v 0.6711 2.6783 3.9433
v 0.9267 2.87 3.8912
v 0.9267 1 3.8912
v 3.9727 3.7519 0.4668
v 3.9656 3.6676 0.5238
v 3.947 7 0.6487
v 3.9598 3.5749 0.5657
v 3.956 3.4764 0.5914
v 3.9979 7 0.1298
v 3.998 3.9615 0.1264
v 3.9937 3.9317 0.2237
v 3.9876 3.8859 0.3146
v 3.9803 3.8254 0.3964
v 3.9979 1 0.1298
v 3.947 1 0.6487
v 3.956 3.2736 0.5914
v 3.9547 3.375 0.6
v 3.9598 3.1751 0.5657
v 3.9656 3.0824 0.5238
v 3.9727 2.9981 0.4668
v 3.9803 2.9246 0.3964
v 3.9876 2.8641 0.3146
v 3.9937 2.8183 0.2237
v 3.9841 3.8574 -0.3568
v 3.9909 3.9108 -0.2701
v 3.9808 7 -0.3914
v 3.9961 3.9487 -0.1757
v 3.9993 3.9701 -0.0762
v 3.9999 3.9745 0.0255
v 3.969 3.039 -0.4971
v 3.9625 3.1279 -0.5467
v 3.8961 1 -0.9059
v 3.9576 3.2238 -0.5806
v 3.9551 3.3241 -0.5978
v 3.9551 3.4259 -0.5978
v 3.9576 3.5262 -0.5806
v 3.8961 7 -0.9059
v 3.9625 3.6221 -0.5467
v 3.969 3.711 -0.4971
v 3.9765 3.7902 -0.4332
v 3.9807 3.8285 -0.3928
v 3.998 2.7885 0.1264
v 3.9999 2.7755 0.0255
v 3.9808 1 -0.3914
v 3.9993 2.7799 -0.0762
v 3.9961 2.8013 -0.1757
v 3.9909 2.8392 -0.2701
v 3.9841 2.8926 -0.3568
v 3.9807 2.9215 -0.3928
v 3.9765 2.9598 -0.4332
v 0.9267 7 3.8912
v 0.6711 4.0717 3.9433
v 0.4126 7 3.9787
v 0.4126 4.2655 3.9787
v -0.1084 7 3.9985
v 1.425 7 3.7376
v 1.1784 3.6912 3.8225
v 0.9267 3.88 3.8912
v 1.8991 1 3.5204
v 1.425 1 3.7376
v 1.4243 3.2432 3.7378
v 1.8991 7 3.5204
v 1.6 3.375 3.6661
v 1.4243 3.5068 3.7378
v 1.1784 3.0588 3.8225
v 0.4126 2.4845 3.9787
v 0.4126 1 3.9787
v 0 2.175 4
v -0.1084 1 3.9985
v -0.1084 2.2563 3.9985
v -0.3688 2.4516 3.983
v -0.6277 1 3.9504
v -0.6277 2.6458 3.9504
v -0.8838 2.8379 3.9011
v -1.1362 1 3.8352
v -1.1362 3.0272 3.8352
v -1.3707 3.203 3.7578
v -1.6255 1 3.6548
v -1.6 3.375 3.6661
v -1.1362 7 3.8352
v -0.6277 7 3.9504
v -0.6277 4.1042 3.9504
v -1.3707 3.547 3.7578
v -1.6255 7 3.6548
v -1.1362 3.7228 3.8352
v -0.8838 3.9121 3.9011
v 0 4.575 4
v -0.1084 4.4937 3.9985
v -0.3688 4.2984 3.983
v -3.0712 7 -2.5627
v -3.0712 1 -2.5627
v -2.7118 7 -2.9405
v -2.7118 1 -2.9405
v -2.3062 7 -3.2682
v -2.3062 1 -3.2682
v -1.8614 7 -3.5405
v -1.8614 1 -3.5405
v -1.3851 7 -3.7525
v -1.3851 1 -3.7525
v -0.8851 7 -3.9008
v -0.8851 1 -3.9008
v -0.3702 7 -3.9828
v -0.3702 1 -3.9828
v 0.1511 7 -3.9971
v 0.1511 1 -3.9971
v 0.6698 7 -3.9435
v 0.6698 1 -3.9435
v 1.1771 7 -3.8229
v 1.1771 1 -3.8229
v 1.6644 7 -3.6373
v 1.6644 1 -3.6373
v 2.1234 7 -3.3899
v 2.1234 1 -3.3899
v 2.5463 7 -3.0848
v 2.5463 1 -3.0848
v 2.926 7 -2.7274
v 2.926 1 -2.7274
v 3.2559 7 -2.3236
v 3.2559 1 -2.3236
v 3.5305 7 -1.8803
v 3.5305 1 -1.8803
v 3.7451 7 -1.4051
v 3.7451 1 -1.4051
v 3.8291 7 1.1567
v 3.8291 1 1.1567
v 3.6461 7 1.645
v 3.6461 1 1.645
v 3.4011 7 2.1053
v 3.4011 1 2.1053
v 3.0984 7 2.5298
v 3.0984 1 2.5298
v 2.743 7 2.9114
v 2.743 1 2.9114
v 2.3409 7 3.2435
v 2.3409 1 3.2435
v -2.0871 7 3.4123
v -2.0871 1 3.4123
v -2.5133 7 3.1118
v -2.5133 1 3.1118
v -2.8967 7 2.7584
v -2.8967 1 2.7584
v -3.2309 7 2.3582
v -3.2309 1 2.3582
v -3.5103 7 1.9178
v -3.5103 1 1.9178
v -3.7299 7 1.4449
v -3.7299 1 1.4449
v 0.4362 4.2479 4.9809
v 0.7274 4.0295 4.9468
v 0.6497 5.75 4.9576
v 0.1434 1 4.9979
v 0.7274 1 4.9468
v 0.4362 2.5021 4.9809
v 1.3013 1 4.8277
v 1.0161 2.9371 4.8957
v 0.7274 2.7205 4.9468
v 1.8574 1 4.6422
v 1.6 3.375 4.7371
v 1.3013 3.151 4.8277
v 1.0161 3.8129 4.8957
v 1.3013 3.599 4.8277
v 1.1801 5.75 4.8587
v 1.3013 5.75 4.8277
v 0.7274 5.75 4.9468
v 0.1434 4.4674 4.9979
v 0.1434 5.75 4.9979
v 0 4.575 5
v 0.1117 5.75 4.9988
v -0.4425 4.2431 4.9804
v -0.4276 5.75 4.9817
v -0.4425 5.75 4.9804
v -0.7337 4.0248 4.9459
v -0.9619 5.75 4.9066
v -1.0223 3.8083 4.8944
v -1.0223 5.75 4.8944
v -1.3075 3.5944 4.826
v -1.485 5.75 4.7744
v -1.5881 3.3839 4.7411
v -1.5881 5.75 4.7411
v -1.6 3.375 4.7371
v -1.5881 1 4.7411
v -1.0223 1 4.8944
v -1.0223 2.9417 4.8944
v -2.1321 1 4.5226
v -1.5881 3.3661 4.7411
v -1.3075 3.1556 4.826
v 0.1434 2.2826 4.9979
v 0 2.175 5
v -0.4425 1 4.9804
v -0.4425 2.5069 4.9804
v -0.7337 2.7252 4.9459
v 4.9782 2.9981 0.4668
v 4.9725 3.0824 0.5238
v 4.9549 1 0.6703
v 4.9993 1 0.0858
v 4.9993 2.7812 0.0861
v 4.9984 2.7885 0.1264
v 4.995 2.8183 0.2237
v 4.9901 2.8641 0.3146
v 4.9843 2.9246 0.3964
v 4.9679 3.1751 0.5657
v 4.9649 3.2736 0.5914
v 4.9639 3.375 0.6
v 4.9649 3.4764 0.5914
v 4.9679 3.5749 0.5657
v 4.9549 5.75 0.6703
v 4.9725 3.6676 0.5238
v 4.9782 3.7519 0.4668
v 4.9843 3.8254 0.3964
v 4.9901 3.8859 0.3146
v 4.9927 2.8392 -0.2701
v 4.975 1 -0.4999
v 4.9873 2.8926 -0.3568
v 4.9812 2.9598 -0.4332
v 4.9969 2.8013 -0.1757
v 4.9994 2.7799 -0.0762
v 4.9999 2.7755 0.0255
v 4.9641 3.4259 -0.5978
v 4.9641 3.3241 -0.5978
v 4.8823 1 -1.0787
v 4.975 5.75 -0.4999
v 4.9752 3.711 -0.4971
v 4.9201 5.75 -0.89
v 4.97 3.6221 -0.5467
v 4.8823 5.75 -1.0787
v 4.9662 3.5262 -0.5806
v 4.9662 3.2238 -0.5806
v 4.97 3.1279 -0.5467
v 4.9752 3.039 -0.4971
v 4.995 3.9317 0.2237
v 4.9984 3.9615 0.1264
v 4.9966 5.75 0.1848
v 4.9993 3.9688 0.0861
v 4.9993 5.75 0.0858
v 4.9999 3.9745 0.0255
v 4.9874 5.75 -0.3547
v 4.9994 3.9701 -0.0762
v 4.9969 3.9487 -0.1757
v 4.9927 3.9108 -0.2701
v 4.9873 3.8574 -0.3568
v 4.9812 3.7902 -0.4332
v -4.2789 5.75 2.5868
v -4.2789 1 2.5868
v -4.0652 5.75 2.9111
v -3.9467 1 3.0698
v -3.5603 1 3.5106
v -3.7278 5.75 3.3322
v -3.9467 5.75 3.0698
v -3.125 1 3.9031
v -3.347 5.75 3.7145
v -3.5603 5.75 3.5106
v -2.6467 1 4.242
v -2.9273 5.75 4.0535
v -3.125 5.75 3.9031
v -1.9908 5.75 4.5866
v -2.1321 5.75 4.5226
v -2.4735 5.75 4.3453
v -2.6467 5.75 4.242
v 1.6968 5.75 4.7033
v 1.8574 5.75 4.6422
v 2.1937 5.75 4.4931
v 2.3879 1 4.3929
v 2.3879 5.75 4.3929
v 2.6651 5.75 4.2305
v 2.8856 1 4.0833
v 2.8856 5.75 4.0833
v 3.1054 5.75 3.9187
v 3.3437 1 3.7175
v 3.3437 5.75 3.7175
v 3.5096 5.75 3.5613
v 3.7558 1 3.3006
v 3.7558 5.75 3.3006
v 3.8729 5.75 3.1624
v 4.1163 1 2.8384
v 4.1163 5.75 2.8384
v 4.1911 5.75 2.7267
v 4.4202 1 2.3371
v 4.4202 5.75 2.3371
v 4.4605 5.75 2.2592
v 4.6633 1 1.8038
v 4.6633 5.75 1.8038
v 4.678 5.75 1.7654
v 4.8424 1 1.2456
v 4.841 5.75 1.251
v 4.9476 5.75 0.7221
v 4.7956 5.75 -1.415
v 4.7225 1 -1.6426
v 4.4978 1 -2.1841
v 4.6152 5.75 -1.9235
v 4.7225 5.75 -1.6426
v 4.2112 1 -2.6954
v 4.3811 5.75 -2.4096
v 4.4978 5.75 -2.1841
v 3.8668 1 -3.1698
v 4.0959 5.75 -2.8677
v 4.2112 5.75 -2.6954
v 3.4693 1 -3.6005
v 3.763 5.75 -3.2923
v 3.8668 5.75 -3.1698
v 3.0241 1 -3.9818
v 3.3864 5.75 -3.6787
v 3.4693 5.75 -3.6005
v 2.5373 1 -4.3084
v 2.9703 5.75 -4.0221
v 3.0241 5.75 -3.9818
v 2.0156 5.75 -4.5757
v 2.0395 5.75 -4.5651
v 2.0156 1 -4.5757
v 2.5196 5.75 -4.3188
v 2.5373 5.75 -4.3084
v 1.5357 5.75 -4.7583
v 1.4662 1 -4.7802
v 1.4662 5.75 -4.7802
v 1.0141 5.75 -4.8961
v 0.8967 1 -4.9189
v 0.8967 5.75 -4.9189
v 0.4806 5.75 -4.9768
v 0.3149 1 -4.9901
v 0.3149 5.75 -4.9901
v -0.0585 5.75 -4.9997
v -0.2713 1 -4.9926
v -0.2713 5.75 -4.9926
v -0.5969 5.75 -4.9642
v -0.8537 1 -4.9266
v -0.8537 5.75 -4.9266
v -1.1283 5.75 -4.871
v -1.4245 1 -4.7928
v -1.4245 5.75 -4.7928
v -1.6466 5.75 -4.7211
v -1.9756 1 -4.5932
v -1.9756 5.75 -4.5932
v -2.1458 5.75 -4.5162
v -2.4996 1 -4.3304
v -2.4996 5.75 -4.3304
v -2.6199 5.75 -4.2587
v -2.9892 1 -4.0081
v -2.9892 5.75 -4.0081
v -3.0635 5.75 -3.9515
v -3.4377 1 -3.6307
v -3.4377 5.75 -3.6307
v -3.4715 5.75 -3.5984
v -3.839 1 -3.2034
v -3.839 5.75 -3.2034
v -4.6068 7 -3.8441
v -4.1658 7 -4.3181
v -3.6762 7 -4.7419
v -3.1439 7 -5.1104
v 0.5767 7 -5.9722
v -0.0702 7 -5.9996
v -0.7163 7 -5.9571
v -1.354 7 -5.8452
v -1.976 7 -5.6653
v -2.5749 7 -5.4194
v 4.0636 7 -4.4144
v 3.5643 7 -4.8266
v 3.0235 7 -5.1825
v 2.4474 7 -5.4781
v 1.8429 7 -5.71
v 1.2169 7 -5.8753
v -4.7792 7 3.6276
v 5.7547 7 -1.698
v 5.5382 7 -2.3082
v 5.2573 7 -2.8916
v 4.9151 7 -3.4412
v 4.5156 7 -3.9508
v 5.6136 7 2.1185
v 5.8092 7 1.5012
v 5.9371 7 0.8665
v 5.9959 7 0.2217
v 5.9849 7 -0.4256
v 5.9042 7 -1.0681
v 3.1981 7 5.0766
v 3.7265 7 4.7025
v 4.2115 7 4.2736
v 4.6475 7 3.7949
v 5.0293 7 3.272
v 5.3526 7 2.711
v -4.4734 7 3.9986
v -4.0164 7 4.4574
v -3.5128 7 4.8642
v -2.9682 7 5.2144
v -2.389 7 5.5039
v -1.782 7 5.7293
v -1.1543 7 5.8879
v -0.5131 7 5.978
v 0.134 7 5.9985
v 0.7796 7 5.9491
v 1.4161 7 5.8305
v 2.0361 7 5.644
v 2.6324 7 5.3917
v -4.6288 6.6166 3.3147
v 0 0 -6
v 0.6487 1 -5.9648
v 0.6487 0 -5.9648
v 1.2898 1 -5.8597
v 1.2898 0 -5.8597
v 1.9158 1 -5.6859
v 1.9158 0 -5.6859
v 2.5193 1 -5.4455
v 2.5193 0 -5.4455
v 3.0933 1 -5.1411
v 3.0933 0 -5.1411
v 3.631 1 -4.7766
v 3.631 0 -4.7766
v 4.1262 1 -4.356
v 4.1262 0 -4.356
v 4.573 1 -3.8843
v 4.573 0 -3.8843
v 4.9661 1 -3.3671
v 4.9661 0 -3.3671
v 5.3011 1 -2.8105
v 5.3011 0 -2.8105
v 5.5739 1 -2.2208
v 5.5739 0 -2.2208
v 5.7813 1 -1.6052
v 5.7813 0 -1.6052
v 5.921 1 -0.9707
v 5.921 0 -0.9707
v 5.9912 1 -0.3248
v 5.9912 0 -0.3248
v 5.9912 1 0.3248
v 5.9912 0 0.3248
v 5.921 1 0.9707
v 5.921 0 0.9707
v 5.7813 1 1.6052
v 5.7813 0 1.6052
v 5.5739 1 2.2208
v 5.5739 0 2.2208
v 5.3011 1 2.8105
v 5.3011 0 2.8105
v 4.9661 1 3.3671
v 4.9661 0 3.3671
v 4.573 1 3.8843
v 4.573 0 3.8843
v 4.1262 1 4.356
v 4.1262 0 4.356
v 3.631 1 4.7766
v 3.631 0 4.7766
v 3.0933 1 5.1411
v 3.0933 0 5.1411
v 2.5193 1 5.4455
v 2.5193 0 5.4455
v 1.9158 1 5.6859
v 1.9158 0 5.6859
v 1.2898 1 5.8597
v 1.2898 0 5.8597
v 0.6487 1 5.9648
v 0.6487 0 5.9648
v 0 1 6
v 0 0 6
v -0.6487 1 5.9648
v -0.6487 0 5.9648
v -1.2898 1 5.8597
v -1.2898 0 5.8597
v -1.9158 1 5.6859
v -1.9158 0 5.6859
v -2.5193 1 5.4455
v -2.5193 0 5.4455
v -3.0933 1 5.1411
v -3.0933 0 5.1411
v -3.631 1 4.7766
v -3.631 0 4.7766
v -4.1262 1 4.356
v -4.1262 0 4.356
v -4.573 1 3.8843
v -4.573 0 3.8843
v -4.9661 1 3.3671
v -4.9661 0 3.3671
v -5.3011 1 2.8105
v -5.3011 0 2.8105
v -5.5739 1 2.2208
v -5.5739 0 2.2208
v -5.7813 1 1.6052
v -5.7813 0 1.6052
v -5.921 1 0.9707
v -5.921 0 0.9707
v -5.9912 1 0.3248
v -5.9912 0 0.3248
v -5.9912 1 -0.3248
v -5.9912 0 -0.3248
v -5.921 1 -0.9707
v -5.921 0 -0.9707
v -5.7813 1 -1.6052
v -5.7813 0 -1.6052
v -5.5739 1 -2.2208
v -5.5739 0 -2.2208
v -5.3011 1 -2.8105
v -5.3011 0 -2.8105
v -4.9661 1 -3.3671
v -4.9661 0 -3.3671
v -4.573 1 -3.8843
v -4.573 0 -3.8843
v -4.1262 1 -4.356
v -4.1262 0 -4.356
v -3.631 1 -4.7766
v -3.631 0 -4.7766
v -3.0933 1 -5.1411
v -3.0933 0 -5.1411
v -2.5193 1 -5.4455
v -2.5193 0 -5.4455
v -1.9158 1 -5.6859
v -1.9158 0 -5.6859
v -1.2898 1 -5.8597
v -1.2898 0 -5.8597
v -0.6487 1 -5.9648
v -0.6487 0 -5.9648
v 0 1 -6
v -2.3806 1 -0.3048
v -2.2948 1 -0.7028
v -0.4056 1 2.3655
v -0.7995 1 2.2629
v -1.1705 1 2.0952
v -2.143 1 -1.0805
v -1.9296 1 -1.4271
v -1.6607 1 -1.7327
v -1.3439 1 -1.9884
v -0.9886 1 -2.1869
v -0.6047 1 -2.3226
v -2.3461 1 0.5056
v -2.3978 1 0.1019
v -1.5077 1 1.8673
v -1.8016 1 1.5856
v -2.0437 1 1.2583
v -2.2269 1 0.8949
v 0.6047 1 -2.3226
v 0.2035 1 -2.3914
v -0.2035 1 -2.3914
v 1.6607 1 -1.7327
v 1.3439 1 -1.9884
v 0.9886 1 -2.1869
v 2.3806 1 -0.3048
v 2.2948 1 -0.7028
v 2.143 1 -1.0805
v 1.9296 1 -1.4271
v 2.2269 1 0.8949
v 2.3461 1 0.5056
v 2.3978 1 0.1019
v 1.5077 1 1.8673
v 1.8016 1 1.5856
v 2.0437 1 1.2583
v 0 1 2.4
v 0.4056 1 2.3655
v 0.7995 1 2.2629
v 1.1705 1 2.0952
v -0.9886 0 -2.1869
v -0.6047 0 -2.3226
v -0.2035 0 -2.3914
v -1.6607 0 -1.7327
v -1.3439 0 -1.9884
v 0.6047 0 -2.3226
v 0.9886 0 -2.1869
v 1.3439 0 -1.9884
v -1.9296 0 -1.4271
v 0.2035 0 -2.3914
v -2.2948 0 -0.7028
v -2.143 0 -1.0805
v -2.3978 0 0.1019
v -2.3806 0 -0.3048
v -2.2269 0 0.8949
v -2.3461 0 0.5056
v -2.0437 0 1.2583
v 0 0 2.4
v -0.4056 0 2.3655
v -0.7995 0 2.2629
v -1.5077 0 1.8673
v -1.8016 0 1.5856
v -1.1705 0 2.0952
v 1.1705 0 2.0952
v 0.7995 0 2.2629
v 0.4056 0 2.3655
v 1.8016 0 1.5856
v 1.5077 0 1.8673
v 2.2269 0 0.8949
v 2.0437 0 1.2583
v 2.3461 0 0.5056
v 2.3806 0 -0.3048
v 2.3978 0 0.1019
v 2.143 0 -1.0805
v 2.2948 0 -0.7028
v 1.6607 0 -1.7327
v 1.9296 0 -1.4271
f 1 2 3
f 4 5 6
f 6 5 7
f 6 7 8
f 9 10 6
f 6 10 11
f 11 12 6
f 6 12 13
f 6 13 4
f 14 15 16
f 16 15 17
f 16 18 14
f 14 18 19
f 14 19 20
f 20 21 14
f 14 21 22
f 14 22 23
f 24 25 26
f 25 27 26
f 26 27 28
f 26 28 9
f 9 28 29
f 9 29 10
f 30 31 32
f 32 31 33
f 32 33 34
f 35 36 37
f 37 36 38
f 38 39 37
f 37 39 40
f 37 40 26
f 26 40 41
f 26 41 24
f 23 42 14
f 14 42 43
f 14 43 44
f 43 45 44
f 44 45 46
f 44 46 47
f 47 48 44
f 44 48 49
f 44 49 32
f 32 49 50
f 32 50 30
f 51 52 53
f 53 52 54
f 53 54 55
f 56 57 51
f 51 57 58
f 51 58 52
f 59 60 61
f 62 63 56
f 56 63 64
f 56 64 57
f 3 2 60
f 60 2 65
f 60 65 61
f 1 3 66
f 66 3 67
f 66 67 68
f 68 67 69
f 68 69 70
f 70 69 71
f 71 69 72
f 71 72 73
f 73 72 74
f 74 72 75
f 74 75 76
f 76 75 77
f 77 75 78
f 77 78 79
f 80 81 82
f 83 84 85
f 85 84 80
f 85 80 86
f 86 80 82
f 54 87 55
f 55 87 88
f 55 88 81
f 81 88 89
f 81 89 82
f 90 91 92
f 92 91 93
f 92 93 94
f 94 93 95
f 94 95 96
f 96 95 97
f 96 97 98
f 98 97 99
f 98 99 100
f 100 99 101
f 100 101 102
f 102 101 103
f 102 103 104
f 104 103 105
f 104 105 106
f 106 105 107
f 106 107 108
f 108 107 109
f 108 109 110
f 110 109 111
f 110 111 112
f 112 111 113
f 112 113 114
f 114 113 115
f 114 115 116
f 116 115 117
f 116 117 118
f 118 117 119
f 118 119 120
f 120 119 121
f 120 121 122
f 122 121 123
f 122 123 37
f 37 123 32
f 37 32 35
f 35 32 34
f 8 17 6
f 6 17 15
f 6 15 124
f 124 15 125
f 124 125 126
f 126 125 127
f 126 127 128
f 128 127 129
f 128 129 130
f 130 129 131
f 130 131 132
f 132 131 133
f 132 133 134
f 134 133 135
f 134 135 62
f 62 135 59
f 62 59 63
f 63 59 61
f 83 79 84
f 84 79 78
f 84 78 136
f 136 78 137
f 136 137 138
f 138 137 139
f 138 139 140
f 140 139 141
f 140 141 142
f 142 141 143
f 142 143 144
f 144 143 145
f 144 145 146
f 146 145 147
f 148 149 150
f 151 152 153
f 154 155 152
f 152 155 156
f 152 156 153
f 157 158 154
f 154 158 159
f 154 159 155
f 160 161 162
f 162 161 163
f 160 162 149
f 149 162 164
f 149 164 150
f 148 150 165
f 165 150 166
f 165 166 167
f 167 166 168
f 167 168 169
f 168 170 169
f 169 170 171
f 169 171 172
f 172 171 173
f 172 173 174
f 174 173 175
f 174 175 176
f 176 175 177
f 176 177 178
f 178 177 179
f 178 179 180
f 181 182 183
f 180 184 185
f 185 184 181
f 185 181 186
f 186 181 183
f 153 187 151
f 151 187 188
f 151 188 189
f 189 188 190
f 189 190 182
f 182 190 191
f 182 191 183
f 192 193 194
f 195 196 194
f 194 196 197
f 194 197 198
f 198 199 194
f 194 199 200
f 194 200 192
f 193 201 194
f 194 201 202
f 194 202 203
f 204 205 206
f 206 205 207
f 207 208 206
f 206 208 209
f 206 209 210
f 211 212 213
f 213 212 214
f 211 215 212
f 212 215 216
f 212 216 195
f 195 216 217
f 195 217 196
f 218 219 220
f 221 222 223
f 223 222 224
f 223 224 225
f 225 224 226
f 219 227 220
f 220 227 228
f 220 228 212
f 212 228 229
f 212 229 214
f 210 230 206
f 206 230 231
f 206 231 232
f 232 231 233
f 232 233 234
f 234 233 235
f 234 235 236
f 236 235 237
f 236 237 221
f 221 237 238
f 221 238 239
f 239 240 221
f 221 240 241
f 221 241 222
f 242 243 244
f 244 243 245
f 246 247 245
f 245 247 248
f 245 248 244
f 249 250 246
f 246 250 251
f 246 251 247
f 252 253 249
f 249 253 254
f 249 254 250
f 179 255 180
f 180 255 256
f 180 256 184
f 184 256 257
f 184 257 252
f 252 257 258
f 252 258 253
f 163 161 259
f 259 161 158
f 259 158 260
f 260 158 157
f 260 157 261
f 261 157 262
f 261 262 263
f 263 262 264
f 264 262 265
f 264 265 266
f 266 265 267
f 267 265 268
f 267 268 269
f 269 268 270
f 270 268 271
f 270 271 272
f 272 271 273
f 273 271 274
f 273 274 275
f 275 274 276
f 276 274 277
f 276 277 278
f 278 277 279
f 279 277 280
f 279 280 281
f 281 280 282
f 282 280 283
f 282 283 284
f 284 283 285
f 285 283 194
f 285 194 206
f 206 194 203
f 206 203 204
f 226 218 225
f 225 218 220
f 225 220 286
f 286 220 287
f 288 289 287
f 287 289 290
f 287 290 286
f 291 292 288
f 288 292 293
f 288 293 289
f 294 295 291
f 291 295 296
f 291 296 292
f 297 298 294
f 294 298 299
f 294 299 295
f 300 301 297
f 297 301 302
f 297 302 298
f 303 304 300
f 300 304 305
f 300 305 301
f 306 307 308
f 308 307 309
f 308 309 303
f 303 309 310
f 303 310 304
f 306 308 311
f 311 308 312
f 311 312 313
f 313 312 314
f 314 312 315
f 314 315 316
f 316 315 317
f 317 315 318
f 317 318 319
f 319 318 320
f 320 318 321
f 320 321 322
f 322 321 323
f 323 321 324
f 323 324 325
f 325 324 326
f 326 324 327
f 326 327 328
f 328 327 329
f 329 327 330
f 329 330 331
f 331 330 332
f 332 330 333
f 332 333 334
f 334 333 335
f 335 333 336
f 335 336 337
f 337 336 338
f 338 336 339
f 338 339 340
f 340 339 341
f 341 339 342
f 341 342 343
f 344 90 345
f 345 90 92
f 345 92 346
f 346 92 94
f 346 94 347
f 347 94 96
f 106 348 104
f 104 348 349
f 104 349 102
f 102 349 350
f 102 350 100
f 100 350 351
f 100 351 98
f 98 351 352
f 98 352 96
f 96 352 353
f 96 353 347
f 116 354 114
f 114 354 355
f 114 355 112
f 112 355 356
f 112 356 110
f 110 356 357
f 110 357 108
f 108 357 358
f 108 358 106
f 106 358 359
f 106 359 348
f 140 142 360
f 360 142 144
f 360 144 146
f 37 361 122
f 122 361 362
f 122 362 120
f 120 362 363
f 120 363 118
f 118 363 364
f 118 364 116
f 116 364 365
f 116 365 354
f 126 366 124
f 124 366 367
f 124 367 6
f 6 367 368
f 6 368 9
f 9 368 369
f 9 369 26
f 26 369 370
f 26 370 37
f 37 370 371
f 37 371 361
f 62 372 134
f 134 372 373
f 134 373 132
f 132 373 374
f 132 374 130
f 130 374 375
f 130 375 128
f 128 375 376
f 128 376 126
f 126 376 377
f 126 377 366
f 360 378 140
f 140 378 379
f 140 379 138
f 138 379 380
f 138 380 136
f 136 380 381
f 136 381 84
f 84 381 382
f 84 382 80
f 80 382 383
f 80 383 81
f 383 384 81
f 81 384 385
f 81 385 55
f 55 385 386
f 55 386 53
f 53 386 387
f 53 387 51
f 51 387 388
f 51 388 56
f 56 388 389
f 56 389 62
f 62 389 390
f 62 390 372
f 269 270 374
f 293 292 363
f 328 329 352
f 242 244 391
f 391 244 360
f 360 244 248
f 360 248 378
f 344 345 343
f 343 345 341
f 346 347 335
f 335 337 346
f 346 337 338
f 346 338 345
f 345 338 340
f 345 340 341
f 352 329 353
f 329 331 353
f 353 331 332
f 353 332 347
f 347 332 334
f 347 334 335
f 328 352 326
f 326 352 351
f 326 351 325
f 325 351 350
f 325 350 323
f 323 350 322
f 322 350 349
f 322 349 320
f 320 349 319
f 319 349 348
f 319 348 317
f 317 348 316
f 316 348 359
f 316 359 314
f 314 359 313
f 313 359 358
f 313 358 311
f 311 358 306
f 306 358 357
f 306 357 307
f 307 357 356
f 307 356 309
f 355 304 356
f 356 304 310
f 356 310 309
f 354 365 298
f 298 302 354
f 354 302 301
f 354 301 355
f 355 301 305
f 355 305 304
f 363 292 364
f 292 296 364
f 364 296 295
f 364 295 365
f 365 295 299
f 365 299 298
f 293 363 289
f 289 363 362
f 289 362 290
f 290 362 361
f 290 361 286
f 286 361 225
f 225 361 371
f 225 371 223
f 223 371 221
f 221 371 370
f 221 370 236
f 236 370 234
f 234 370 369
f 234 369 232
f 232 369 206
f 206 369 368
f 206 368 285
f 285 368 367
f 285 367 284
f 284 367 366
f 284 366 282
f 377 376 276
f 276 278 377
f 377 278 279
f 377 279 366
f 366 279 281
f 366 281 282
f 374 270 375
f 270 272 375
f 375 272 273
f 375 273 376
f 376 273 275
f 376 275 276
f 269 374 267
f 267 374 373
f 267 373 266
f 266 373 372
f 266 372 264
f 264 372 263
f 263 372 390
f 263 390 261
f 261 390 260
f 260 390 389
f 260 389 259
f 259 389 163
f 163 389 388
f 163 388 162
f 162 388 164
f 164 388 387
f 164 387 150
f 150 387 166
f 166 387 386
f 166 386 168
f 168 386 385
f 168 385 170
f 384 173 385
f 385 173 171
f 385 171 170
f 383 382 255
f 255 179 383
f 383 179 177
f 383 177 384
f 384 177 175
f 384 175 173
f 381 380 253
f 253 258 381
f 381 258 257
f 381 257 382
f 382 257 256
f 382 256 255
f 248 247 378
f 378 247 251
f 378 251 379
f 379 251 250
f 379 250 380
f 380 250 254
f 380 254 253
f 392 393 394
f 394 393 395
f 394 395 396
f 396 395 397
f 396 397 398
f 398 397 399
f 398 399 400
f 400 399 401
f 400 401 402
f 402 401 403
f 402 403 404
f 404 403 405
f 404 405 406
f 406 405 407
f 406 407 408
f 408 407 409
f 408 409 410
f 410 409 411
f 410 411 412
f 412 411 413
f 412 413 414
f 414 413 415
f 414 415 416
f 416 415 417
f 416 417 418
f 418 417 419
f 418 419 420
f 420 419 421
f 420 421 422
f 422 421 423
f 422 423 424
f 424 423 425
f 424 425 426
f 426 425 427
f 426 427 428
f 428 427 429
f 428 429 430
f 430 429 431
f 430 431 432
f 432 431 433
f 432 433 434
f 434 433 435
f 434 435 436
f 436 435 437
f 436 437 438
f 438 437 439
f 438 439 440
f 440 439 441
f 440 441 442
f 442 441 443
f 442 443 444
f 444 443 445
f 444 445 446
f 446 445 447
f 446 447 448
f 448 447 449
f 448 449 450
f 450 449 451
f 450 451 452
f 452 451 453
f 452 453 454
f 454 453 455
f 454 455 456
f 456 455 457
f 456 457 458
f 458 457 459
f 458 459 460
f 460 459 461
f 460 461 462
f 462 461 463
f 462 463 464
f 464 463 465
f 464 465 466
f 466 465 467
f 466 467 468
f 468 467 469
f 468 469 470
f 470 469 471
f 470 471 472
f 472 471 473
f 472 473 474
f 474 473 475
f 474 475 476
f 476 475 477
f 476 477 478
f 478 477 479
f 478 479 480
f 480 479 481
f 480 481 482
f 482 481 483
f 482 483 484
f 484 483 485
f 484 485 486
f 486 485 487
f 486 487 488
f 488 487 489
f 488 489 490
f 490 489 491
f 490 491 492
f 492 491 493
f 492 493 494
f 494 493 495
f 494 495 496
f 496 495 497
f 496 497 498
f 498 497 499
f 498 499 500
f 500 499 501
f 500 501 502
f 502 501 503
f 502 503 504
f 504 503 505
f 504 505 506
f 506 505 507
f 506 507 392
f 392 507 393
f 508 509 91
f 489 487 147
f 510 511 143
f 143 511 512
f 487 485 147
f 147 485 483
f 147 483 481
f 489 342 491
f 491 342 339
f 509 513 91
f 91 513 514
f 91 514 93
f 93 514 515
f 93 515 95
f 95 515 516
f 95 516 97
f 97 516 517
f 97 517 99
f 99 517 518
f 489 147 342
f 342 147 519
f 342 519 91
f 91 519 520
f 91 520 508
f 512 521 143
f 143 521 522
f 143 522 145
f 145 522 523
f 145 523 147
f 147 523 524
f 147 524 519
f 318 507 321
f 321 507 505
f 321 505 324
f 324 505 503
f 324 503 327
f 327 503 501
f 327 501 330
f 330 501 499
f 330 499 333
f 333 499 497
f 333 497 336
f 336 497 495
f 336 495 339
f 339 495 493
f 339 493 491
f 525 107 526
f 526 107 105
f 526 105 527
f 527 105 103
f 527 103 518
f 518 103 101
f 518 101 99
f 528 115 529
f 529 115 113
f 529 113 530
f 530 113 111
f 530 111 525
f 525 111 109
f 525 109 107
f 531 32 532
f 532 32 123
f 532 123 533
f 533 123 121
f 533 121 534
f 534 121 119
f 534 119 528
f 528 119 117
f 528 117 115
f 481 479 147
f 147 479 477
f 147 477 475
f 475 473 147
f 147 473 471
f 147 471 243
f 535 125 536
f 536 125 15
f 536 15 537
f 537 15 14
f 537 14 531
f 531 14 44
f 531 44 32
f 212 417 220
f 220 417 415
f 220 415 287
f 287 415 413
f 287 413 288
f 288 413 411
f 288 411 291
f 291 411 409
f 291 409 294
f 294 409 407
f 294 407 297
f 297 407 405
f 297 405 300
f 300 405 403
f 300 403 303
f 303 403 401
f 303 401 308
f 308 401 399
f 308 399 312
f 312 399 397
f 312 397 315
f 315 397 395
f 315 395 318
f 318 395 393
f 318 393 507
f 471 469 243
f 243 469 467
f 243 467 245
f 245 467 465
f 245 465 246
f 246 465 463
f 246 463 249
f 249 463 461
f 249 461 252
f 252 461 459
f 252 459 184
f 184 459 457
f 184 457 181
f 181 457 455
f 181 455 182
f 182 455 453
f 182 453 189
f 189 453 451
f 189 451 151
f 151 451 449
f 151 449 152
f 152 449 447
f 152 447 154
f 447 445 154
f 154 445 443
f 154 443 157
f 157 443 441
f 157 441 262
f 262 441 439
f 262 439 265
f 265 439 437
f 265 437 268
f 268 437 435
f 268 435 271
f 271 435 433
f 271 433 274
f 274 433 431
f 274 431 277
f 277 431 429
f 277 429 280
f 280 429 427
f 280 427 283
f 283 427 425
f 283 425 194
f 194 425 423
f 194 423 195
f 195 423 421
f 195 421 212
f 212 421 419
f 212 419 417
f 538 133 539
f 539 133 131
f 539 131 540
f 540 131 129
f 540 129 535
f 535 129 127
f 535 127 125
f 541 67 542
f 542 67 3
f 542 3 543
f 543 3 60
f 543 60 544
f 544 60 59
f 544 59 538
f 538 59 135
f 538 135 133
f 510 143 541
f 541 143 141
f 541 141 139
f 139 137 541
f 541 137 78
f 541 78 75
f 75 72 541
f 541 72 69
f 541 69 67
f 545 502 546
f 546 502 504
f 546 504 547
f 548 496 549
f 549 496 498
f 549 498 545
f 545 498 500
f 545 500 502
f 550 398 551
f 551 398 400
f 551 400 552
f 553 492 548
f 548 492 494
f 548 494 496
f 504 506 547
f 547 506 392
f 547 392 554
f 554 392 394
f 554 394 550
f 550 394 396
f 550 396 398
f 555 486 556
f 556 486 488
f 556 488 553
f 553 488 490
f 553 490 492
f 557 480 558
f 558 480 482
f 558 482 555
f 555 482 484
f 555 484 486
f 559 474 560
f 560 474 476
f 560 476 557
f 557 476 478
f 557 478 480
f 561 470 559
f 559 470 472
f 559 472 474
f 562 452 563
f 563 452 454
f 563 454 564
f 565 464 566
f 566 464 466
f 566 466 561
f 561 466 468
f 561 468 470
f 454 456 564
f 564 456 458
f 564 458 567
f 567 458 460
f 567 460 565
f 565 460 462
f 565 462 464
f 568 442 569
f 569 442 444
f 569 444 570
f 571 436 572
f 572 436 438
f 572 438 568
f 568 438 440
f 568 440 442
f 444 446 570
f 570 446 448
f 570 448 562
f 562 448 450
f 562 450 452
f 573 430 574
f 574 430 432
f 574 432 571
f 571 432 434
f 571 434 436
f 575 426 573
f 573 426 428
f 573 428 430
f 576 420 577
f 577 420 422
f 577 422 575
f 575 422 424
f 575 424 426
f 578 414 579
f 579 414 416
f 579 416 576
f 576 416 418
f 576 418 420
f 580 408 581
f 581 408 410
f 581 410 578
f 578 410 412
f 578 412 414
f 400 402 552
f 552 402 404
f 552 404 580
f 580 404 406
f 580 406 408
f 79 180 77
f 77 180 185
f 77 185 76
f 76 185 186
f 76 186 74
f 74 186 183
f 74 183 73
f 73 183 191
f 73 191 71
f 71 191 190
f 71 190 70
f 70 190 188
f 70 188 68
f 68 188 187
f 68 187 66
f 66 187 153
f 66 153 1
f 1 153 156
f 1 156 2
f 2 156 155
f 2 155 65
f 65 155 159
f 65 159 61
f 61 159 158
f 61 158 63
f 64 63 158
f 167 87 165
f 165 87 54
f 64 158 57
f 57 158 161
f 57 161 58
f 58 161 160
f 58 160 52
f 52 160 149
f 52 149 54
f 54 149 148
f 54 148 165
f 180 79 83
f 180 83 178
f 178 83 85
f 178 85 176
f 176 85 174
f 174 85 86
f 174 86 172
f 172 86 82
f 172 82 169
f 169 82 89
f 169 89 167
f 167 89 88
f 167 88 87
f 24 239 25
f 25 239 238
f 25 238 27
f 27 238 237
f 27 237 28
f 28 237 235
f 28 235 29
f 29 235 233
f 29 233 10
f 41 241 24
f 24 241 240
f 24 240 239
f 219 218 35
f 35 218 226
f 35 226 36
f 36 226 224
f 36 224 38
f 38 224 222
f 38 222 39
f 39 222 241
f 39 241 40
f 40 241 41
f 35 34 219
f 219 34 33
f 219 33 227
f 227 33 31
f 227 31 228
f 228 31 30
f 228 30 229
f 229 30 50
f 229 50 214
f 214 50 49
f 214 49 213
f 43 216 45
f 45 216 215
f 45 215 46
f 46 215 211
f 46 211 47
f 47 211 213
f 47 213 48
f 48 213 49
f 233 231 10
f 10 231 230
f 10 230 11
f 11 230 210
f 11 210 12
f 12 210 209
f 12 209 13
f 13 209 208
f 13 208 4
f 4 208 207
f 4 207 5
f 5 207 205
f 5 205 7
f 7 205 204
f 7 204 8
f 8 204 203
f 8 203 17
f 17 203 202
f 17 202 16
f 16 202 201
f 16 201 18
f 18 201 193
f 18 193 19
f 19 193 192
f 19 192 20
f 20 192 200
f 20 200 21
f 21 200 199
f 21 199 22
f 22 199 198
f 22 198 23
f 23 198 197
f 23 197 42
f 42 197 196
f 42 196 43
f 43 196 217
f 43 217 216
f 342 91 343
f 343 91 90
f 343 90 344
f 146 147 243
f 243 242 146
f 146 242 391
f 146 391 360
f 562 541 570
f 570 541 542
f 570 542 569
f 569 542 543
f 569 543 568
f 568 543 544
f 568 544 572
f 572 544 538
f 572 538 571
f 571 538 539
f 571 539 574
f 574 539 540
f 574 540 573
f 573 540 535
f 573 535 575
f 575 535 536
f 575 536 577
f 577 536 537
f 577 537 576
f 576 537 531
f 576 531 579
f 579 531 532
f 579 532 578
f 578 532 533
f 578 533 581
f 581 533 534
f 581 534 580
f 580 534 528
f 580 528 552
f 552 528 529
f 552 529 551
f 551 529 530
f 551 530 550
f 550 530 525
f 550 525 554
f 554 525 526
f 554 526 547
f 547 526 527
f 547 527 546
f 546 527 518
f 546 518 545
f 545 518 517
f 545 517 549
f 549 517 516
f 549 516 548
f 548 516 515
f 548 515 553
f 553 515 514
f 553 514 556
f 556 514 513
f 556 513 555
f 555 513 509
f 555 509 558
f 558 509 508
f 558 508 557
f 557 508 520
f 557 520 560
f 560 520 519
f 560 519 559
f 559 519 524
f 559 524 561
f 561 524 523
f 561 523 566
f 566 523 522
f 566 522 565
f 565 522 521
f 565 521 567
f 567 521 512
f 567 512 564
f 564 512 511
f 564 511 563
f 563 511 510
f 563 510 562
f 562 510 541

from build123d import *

# Parameters (mm, degrees)
SKETCH4_R           = 6
BOSS_EXTRUDE3_DEPTH = 1
SKETCH5_R           = 5
SKETCH5_R_2         = 4
BOSS_EXTRUDE4_DEPTH = 4.75
CUT_EXTRUDE3_START  = -3
SKETCH9_R           = 4
CUT_EXTRUDE3_DEPTH  = 3
CUT_EXTRUDE7_DEPTH  = 10
CUT_EXTRUDE8_DEPTH  = 10
CUT_EXTRUDE10_START = -6
CUT_EXTRUDE10_DEPTH = 6
SKETCH14_R          = 2.4
CUT_EXTRUDE11_DEPTH = 6


with BuildPart() as part:
    # Sketch4 → Boss-Extrude3 (new body)
    with BuildSketch(Plane(origin=(0, 0, 0), x_dir=(1, 0, 0), z_dir=(0, 1, 0))):
        with Locations(Location((0, 0, 0), (0, 0, 270))):
            Circle(SKETCH4_R)
    extrude(amount=BOSS_EXTRUDE3_DEPTH)

    # Sketch5 → Boss-Extrude4 (add)
    with BuildSketch(Plane(origin=(0, 1, 0), x_dir=(1, 0, 0), z_dir=(0, 1, 0))):
        with Locations(Location((0, 0, 0), (0, 0, 270))):
            Circle(SKETCH5_R)
        with Locations(Location((0, 0, 0), (0, 0, 270))):
            Circle(SKETCH5_R_2, mode=Mode.SUBTRACT)
    extrude(amount=BOSS_EXTRUDE4_DEPTH)

    # Sketch6 → Revolve4 (revolve)
    with BuildSketch(Plane.XY, mode=Mode.PRIVATE) as revolve4_sk:
        Polygon((0, 5.75), (5, 5.75), (6, 7), (0, 7), align=None)
    revolve(revolve4_sk.sketch.rotate(Axis((0, 5.75, 0), (0, 1, 0)), 270), axis=Axis((0, 5.75, 0), (0, 1, 0)))

    # Sketch9 → Cut-Extrude3 (cut)
    with BuildSketch(Plane(origin=(0, 7, 0), x_dir=(1, 0, 0), z_dir=(0, 1, 0)).offset(CUT_EXTRUDE3_START)):
        with Locations(Location((0, 0, 0), (0, 0, 270))):
            Circle(SKETCH9_R)
    extrude(amount=CUT_EXTRUDE3_DEPTH, mode=Mode.SUBTRACT)

    # Sketch11 → Cut-Extrude7 (cut)
    with BuildSketch(Plane.XY):
        Polygon((0, 4.575), (0, 3.375), (1.2, 3.375), (1.6, 3.375), align=None)
        Polygon((-1.2, 3.375), (0, 3.375), (0, 4.575), (-1.6, 3.375), align=None)
        Polygon((0, 2.175), (0, 3.375), (-1.2, 3.375), (-1.6, 3.375), align=None)
        Polygon((1.2, 3.375), (0, 3.375), (0, 2.175), (1.6, 3.375), align=None)
    extrude(amount=CUT_EXTRUDE7_DEPTH, mode=Mode.SUBTRACT)

    # Sketch12 → Cut-Extrude8 (cut)
    with BuildSketch(Plane(origin=(0, 0, 0), x_dir=(0, 0, -1), z_dir=(1, 0, 0))):
        with BuildLine():
            ThreePointArc((0.6, 3.375), (0.424264069, 3.799264069), (0, 3.975))
            Line((0, 3.975), (0, 2.775))
            ThreePointArc((0, 2.775), (0.424264069, 2.950735931), (0.6, 3.375))
        make_face()
        with BuildLine():
            Line((0, 2.775), (0, 3.975))
            ThreePointArc((0, 3.975), (-0.6, 3.375), (0, 2.775))
        make_face()
    extrude(amount=CUT_EXTRUDE8_DEPTH, mode=Mode.SUBTRACT)

    # Sketch13 → Cut-Extrude10 (cut)
    with BuildSketch(Plane(origin=(0, 7, 0), x_dir=(1, 0, 0), z_dir=(0, 1, 0)).offset(CUT_EXTRUDE10_START)):
        with BuildLine():
            Line((-4.779206309, -3.627559381), (-3.72991173, -1.444907777))
            ThreePointArc((-3.72991173, -1.444907777), (-3.947043415, 0.648728201), (-3.071224525, 2.562728998))
            Line((-3.071224525, 2.562728998), (-4.606836788, 3.844093497))
            ThreePointArc((-4.606836788, 3.844093497), (-5.99840399, 0.138381967), (-4.779206309, -3.627559381))
        make_face()
    extrude(amount=CUT_EXTRUDE10_DEPTH, mode=Mode.SUBTRACT)

    # Sketch14 → Cut-Extrude11 (cut)
    with BuildSketch(Plane(origin=(0, 1, 0), x_dir=(1, 0, 0), z_dir=(0, 1, 0))):
        with Locations(Location((0, 0, 0), (0, 0, 270))):
            Circle(SKETCH14_R)
    extrude(amount=-CUT_EXTRUDE11_DEPTH, mode=Mode.SUBTRACT)


solid = part.part
